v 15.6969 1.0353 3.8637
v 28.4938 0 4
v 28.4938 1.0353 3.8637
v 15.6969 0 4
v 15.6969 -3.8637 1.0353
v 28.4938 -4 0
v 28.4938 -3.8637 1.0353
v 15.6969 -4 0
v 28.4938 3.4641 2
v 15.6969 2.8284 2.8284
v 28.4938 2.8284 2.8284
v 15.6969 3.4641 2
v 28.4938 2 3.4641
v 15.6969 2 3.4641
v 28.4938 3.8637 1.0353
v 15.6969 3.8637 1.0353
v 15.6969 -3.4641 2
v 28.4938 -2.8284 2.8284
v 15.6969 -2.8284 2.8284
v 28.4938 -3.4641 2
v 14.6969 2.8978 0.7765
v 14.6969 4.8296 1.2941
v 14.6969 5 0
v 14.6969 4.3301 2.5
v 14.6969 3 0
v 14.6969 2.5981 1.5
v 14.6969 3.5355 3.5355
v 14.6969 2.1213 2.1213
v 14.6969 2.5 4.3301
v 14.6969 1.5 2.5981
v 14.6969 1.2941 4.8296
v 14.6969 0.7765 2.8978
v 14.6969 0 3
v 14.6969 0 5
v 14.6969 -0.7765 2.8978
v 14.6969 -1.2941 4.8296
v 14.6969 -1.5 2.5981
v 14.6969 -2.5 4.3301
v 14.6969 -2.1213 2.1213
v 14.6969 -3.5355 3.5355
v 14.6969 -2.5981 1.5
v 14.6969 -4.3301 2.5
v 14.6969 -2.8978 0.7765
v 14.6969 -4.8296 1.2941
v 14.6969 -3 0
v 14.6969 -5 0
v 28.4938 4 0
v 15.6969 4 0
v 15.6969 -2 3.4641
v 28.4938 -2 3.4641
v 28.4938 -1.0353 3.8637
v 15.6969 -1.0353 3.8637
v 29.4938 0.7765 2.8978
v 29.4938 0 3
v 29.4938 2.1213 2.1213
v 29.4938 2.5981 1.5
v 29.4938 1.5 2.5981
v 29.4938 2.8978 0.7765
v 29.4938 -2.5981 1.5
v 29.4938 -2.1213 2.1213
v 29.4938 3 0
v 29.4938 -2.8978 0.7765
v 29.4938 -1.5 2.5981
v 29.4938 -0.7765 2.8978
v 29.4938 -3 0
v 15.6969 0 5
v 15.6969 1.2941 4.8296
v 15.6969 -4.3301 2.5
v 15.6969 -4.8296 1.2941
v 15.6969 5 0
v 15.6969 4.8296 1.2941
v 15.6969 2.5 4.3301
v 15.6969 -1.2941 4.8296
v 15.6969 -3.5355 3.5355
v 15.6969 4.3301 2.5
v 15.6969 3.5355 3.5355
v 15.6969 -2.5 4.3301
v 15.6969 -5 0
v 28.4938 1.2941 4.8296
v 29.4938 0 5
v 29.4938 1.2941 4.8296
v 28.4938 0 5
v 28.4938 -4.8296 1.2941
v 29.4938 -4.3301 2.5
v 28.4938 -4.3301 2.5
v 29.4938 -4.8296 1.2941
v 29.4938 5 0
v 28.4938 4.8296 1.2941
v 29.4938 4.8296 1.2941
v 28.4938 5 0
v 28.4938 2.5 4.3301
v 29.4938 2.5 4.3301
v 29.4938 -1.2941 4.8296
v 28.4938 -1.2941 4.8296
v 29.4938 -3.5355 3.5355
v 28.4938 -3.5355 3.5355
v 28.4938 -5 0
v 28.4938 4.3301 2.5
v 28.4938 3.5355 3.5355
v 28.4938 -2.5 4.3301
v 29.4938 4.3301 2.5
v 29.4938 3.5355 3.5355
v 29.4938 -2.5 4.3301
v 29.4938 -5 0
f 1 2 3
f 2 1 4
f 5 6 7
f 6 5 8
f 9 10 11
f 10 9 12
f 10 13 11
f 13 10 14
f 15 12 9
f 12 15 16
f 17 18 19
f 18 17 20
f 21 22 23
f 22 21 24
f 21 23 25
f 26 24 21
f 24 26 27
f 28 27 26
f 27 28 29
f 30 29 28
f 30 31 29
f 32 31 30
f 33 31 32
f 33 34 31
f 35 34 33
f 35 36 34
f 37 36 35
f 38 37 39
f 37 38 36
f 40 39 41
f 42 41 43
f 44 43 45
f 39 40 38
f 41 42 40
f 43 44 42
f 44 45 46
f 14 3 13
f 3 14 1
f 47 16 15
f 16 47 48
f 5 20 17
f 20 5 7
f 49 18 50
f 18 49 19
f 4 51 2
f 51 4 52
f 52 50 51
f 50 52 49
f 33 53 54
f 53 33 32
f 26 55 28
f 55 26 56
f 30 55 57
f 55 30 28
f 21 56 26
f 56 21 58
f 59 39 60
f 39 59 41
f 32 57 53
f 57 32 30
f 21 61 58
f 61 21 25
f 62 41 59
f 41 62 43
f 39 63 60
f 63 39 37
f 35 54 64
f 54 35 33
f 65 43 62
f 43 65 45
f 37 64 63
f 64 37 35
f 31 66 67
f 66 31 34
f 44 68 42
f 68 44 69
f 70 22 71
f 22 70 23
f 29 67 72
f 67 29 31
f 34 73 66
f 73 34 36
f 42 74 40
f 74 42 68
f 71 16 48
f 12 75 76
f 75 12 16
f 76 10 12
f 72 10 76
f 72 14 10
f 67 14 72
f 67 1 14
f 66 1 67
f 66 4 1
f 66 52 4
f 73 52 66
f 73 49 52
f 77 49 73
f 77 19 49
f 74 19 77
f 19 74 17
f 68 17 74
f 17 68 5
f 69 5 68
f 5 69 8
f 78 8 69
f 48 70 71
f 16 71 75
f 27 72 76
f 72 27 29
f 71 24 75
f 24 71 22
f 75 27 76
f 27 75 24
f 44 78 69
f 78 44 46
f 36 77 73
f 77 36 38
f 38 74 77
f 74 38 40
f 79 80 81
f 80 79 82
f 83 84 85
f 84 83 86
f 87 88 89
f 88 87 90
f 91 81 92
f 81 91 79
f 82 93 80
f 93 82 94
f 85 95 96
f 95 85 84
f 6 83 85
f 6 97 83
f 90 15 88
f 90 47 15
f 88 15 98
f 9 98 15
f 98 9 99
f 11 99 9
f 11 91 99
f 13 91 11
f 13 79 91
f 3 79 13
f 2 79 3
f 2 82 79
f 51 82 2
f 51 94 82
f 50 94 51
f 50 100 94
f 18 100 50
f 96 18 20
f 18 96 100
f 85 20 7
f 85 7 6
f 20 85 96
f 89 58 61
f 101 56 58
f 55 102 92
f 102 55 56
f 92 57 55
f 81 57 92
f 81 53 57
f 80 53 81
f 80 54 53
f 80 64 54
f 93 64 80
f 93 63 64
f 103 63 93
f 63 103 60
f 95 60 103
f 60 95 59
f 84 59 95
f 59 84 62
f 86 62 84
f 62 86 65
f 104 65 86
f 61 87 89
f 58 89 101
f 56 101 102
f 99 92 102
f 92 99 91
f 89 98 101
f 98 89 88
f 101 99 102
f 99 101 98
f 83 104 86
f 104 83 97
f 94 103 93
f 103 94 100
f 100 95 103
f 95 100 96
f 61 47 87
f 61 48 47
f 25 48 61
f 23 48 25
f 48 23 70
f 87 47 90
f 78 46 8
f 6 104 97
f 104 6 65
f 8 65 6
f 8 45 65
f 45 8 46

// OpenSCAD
// file: ../build_environments.scad
// build_environments.scad: modules to build level sections
//

module pool(diameter=10.0, wall_height=2.0, step_width=3.0, connections=[])
{
    difference() {
        union() {
        difference() {
            cylinder(h=0.5,r1=diameter+step_width,r2=diameter+step_width,$fn=48);
            translate([0,0,-0.1])
                cylinder(h=0.7,r1=diameter,r2=diameter,$fn=48);
        }
        difference() {
            cylinder(h=wall_height,r1=diameter+step_width+1.0,r2=diameter+step_width+1.0,$fn=48);
            translate([0,0,-0.1])
                cylinder(h=wall_height+0.2,r1=diameter+step_width,r2=diameter+step_width,$fn=48);
        }
        }
    
        for (c = connections)
        {
            rotate([0,90,0]) {
                angle = atan2(c[1],c[0]);
                rotate([-angle,0,0]) {
                    cylinder(h=diameter+5.0,r1=c[2],r2=c[2],$fn=48);
                }
            }
        }
    }
}

module straight(length=10.0, width=2.0, dy1=0.0, dy2=0.0, dz=0.0)
{
    dims = [0, 0, 0, 0, 0, (dz/length)];
    matrix = [
        [ 1, dims[0], dims[1], 0 ],
        [ dims[2], 1, dims[4], 0 ],
        [ dims[5], dims[3], 1, 0 ],
        [ 0, 0, 0, 1 ]
    ];
    multmatrix(matrix)
    difference() {
        translate([dy1,0,0])
        union() {
            rotate([0,90,0]) {
                difference() {
                    cylinder(h=(length-dy1-dy2),r1=width+1.0,r2=width+1.0,$fn=24);
                    translate([0,0,-0.1])
                        cylinder(h=(length-dy1-dy2+0.2),r1=width,r2=width,$fn=24);
                }
                difference() {
                    cylinder(h=1.0,r1=width+2.0,r2=width+2.0,$fn=24);
                    translate([0,0,-0.1])
                        cylinder(h=1.2,r1=width,r2=width,$fn=24);
                }
                translate([0,0,(length-dy1-dy2)-1.0]) {
                    difference() {
                        cylinder(h=1.0,r1=width+2.0,r2=width+2.0,$fn=24);
                        translate([0,0,-0.1])
                            cylinder(h=1.2,r1=width,r2=width,$fn=24);
                    }
                }
            }
        }
        translate([0,0,-(2*width+4.0)/2])
            cube([3*length,3*length,2*width+4.0],center=true);
    }
}

module curve(p0=[0,0], center=[0,0], dir=1, angle=0.0, width=2.0)
{
    radius = sqrt((p0[0]-center[0])*(p0[0]-center[0]) + (p0[1]-center[1])*(p0[1]-center[1]));
    if (dir == 0) {
        difference() {
            rotate([0,0,-90])
            difference() {
                rotate_extrude(angle = angle, convexity = 10, $fn=32)
                    translate([radius, 0, 0])
                        circle(r = width+1.0,$fn=24);
                rotate([0,0,-1.0])
                    rotate_extrude(angle = angle+2.0, convexity = 10, $fn=32)
                        translate([radius, 0, 0])
                            circle(r = width,$fn=24);
            }
            translate([0,0,-(2*width+4.0)/2])
                cube([5*radius,5*radius,2*width+4.0],center=true);
        }
    }
    else {
        difference() {
            rotate([0,0,90])
            difference() {
                rotate_extrude(angle = -angle, convexity = 10, $fn=32)
                    translate([radius, 0, 0])
                        circle(r = width+1.0,$fn=24);
                rotate([0,0,1.0])
                    rotate_extrude(angle = -angle-2.0, convexity = 10, $fn=32)
                        translate([radius, 0, 0])
                            circle(r = width,$fn=24);
            }
            translate([0,0,-(2*width+4.0)/2])
                cube([5*radius,5*radius,2*width+4.0],center=true);
        }
    }

}

// test pool
//pool(diameter=12.0000, wall_height=3.0000, step_width=3.0000, connections=[[0.0000,-26.0000,2.0000], [23.6074,0.0000,2.0000]]);

// test straight, slope
//straight(length=26.0000, width=2.0000, dy1=11.8322, dy2=6.7082, dz=0.0000);
//straight(length=29.1549, width=12.0000, dy1=0.0000, dy2=0.0000, dz=-15.0000);

// test curve
//curve(p0=[23.6074, 0.0000], center=[23.6074, 5.0000], dir=0, angle=60.1011, width=2.0000);
//curve(p0=[33.6426, 12.4219], center=[37.9771, 9.9295], dir=1, angle=120.4627, width=2.0000);
// main file
use <../build_environments.scad>;
straight(length=29.4938, width=3.0000, dy1=14.6969, dy2=0.0000, dz=0.0000);
